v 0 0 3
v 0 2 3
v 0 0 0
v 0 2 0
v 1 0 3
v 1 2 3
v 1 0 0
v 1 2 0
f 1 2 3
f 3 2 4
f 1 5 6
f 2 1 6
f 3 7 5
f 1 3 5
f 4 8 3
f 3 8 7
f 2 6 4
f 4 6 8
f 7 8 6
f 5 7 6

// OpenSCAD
/*
 * OpenSCAD Workshop Examples
 * Copyright (c) 2013-2016 Anar Software LLC. < http://anars.com >
 *
 * This program is free software: you can redistribute it and/or modify it under
 * the terms of the GNU General Public License as published by the Free Software
 * Foundation, either version 3 of the License, or (at your option) any later
 * version.
 *
 * This program is distributed in the hope that it will be useful, but WITHOUT
 * ANY WARRANTY; without even the implied warranty of MERCHANTABILITY or FITNESS
 * FOR A PARTICULAR PURPOSE. See the GNU General Public License for more details.
 *
 * You should have received a copy of the GNU General Public License along with
 * this program. If not, see < http://www.gnu.org/licenses/ >
 *
 */
/*

Creates a rectangular prism.


Parameters :

	cube(size = [width, height, depth]);

*/

cube(size = [1, 2, 3]);
